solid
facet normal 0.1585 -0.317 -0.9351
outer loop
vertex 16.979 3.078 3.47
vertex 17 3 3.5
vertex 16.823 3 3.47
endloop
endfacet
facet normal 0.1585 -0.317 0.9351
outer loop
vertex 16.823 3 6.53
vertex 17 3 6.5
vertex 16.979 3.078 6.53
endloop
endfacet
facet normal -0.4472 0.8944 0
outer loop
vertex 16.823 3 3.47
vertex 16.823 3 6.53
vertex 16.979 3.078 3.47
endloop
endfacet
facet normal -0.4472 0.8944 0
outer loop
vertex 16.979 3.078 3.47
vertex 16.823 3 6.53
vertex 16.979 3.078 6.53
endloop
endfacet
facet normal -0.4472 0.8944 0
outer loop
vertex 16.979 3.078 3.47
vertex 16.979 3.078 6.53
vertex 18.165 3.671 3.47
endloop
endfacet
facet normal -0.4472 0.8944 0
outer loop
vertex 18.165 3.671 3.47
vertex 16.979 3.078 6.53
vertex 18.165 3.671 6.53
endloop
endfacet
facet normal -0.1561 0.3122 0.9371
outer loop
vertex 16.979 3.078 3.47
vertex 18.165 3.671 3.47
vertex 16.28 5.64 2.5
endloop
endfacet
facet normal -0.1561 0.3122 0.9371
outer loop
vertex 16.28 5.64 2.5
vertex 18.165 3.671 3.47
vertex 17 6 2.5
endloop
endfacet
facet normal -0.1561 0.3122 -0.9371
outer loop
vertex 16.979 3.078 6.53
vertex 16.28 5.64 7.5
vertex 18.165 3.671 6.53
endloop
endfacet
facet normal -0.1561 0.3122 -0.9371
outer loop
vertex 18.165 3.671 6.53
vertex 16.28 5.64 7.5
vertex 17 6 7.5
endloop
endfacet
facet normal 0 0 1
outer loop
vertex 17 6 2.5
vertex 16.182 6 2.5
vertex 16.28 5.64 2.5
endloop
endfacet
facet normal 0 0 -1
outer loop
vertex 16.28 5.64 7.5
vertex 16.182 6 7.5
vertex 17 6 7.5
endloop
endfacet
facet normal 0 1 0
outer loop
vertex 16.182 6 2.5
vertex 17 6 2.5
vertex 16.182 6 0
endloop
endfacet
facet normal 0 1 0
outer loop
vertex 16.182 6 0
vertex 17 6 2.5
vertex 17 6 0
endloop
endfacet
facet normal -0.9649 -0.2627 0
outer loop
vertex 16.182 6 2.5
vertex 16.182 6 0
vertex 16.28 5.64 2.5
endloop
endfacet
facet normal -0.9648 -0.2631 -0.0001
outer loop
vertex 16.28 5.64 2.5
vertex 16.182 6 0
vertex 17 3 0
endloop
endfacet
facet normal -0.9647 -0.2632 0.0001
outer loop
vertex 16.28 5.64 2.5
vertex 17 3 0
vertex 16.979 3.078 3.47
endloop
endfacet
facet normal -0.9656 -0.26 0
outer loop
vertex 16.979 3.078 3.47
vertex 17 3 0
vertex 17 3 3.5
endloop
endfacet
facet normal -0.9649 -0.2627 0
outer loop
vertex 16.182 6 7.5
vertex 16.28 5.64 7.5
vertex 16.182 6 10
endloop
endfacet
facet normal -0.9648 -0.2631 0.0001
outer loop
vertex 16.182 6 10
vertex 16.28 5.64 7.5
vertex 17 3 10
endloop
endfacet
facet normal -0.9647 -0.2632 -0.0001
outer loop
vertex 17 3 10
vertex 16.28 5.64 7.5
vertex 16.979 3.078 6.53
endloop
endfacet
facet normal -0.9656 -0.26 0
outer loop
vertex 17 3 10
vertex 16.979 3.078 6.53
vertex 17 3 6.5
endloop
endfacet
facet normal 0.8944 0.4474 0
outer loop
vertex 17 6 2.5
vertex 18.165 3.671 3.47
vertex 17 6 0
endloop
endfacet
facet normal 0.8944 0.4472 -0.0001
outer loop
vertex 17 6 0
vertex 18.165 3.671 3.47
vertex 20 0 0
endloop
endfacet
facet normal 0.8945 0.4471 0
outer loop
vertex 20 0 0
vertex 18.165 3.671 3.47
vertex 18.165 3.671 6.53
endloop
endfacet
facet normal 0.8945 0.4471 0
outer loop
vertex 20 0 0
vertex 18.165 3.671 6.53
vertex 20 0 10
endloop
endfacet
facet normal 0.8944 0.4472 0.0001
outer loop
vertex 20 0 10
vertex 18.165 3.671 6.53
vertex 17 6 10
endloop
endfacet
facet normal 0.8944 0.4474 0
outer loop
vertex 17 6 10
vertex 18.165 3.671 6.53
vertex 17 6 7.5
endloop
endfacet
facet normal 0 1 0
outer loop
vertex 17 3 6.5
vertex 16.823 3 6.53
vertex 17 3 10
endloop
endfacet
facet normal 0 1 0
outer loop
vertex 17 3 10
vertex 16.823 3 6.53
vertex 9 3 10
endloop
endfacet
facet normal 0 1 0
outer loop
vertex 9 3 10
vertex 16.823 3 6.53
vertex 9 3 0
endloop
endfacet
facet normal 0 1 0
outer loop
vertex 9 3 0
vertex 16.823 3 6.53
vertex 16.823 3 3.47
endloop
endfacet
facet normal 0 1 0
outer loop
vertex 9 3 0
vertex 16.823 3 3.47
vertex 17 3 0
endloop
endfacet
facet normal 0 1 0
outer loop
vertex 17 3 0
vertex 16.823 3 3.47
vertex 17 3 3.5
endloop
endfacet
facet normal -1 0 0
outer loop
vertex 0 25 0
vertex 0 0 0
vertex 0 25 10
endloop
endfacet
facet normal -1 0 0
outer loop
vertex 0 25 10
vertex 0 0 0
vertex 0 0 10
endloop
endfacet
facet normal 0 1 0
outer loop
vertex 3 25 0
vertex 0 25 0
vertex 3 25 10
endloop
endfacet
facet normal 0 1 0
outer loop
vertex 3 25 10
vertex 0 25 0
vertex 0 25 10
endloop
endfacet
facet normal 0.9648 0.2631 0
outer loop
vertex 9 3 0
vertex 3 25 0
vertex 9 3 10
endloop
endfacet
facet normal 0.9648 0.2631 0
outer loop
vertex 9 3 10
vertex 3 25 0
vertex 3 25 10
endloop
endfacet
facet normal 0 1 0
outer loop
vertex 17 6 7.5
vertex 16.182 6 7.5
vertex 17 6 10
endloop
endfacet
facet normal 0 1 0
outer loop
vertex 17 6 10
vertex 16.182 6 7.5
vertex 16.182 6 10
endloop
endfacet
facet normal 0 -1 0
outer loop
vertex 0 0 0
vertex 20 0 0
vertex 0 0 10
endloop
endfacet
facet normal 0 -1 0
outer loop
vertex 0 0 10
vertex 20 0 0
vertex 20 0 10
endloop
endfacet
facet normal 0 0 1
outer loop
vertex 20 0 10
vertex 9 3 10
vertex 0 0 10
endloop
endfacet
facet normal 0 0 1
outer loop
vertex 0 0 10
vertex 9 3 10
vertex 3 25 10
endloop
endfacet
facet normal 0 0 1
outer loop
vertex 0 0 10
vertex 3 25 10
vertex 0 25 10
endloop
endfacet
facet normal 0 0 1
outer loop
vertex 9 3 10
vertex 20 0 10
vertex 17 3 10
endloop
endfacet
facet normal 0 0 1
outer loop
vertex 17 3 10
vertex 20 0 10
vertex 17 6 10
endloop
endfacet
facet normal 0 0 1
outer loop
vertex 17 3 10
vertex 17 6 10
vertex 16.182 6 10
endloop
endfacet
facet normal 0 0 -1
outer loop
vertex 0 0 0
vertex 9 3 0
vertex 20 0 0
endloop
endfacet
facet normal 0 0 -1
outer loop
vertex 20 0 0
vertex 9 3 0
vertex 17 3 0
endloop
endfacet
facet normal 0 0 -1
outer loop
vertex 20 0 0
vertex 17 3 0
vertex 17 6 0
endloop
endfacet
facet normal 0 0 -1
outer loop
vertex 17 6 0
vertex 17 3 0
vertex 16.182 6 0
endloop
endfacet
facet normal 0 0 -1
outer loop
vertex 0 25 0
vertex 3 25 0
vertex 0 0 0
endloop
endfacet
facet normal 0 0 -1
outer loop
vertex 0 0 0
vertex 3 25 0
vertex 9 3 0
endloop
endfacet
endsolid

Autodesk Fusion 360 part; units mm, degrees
sketch "Skizze1" plane through (0, 0, 0) normal (0, 0, 1) x (1, 0, 0)
  line L0 (0, 0) -> (0, 25)
  line L1 (0, 0) -> (20, 0)
  line L2 (0, 25) -> (3, 25)
  line L3 (17, 3) -> (9, 3)
  line L4 (3, 25) -> (9, 3)
  line L5 (3, 25) -> (3, 3) construction
  line L6 (3, 3) -> (9, 3) construction
  line L7 (17, 6) -> (20, 0)
  line L8 (17, 6) -> (16.1818, 6)
  line L9 (17, 3) -> (16.1818, 6)
  line L10 (17, 3) -> (22, 3) construction
  dimension "d1" = 3
  dimension "d4" = 74.745
  dimension "d5" = 105.255
extrude "Extrusion1" add sketch "Skizze1" along normal blind 10
sketch "Skizze3" plane through (0, 0, 0) normal (0, 0, -1) x (1, 0, 0)
  line L0 (20, 0) -> (0, 0)
  line L1 (0, 0) -> (0, -25)
  line L2 (0, -25) -> (3, -25)
  line L3 (3, -25) -> (9, -3)
  line L4 (9, -3) -> (17, -3)
  line L5 (17, -3) -> (16.1818, -6)
  line L6 (16.1818, -6) -> (17, -6)
  line L7 (17, -6) -> (20, 0)
  line L8 (17, -3) -> (18.5, -3)
  line L9 (18.5, -3) -> (17, -6) construction
sketch "Skizze4" plane through (16, 8, 0) normal (0.8944, 0.4472, 0) x (-0.4472, 0.8944, 0)
  line L0 (-8.9443, 0) -> (-2.2361, 0)
  line L1 (-2.2361, 0) -> (-2.2361, 10)
  line L2 (-2.2361, 10) -> (-8.9443, 10)
  line L3 (-8.9443, 10) -> (-8.9443, 0)
  line L4 (-8.9443, 10) -> (-8.9443, 0) construction
  line L5 (-8.9443, 5) -> (-2.2361, 5) construction
  line L6 (-8.9443, 2.5) -> (-2.2361, 2.5) construction
  line L7 (-8.9443, 7.5) -> (-2.2361, 7.5) construction
  line L8 (-2.2361, 7.5) -> (-8.9443, 5)
  line L9 (-2.2361, 2.5) -> (-8.9443, 5)
  line L10 (-2.2361, 0) -> (-5.5902, 0) construction
  line L11 (-5.5902, 0) -> (-5.5902, 10) construction
  line L12 (-5.5902, 3.75) -> (-5.5902, 6.25)
  dimension "d10" = 2.5
  dimension "d11" = 2.5
  dimension "d13" = 3.3541
  dimension "d14" = 6.7082
extrude "Extrusion2" cut sketch "Skizze4" against normal blind 1.5 contours L1 L8 L9 L12
extrude "Extrusion3" cut 1 faces at (16.52, 5.76, 5.8333) along direction (-0.447214, 0.894427, 0) blind 0.4
extrude "Extrusion4" add 1 faces at (16.9348, 2.7764, 4.5833) along direction (0.894427, 0.447214, 0) blind 1.5
equation "d5 = 180 deg - 74.7448809423 deg"
properties part number "Konfiguration 1"
